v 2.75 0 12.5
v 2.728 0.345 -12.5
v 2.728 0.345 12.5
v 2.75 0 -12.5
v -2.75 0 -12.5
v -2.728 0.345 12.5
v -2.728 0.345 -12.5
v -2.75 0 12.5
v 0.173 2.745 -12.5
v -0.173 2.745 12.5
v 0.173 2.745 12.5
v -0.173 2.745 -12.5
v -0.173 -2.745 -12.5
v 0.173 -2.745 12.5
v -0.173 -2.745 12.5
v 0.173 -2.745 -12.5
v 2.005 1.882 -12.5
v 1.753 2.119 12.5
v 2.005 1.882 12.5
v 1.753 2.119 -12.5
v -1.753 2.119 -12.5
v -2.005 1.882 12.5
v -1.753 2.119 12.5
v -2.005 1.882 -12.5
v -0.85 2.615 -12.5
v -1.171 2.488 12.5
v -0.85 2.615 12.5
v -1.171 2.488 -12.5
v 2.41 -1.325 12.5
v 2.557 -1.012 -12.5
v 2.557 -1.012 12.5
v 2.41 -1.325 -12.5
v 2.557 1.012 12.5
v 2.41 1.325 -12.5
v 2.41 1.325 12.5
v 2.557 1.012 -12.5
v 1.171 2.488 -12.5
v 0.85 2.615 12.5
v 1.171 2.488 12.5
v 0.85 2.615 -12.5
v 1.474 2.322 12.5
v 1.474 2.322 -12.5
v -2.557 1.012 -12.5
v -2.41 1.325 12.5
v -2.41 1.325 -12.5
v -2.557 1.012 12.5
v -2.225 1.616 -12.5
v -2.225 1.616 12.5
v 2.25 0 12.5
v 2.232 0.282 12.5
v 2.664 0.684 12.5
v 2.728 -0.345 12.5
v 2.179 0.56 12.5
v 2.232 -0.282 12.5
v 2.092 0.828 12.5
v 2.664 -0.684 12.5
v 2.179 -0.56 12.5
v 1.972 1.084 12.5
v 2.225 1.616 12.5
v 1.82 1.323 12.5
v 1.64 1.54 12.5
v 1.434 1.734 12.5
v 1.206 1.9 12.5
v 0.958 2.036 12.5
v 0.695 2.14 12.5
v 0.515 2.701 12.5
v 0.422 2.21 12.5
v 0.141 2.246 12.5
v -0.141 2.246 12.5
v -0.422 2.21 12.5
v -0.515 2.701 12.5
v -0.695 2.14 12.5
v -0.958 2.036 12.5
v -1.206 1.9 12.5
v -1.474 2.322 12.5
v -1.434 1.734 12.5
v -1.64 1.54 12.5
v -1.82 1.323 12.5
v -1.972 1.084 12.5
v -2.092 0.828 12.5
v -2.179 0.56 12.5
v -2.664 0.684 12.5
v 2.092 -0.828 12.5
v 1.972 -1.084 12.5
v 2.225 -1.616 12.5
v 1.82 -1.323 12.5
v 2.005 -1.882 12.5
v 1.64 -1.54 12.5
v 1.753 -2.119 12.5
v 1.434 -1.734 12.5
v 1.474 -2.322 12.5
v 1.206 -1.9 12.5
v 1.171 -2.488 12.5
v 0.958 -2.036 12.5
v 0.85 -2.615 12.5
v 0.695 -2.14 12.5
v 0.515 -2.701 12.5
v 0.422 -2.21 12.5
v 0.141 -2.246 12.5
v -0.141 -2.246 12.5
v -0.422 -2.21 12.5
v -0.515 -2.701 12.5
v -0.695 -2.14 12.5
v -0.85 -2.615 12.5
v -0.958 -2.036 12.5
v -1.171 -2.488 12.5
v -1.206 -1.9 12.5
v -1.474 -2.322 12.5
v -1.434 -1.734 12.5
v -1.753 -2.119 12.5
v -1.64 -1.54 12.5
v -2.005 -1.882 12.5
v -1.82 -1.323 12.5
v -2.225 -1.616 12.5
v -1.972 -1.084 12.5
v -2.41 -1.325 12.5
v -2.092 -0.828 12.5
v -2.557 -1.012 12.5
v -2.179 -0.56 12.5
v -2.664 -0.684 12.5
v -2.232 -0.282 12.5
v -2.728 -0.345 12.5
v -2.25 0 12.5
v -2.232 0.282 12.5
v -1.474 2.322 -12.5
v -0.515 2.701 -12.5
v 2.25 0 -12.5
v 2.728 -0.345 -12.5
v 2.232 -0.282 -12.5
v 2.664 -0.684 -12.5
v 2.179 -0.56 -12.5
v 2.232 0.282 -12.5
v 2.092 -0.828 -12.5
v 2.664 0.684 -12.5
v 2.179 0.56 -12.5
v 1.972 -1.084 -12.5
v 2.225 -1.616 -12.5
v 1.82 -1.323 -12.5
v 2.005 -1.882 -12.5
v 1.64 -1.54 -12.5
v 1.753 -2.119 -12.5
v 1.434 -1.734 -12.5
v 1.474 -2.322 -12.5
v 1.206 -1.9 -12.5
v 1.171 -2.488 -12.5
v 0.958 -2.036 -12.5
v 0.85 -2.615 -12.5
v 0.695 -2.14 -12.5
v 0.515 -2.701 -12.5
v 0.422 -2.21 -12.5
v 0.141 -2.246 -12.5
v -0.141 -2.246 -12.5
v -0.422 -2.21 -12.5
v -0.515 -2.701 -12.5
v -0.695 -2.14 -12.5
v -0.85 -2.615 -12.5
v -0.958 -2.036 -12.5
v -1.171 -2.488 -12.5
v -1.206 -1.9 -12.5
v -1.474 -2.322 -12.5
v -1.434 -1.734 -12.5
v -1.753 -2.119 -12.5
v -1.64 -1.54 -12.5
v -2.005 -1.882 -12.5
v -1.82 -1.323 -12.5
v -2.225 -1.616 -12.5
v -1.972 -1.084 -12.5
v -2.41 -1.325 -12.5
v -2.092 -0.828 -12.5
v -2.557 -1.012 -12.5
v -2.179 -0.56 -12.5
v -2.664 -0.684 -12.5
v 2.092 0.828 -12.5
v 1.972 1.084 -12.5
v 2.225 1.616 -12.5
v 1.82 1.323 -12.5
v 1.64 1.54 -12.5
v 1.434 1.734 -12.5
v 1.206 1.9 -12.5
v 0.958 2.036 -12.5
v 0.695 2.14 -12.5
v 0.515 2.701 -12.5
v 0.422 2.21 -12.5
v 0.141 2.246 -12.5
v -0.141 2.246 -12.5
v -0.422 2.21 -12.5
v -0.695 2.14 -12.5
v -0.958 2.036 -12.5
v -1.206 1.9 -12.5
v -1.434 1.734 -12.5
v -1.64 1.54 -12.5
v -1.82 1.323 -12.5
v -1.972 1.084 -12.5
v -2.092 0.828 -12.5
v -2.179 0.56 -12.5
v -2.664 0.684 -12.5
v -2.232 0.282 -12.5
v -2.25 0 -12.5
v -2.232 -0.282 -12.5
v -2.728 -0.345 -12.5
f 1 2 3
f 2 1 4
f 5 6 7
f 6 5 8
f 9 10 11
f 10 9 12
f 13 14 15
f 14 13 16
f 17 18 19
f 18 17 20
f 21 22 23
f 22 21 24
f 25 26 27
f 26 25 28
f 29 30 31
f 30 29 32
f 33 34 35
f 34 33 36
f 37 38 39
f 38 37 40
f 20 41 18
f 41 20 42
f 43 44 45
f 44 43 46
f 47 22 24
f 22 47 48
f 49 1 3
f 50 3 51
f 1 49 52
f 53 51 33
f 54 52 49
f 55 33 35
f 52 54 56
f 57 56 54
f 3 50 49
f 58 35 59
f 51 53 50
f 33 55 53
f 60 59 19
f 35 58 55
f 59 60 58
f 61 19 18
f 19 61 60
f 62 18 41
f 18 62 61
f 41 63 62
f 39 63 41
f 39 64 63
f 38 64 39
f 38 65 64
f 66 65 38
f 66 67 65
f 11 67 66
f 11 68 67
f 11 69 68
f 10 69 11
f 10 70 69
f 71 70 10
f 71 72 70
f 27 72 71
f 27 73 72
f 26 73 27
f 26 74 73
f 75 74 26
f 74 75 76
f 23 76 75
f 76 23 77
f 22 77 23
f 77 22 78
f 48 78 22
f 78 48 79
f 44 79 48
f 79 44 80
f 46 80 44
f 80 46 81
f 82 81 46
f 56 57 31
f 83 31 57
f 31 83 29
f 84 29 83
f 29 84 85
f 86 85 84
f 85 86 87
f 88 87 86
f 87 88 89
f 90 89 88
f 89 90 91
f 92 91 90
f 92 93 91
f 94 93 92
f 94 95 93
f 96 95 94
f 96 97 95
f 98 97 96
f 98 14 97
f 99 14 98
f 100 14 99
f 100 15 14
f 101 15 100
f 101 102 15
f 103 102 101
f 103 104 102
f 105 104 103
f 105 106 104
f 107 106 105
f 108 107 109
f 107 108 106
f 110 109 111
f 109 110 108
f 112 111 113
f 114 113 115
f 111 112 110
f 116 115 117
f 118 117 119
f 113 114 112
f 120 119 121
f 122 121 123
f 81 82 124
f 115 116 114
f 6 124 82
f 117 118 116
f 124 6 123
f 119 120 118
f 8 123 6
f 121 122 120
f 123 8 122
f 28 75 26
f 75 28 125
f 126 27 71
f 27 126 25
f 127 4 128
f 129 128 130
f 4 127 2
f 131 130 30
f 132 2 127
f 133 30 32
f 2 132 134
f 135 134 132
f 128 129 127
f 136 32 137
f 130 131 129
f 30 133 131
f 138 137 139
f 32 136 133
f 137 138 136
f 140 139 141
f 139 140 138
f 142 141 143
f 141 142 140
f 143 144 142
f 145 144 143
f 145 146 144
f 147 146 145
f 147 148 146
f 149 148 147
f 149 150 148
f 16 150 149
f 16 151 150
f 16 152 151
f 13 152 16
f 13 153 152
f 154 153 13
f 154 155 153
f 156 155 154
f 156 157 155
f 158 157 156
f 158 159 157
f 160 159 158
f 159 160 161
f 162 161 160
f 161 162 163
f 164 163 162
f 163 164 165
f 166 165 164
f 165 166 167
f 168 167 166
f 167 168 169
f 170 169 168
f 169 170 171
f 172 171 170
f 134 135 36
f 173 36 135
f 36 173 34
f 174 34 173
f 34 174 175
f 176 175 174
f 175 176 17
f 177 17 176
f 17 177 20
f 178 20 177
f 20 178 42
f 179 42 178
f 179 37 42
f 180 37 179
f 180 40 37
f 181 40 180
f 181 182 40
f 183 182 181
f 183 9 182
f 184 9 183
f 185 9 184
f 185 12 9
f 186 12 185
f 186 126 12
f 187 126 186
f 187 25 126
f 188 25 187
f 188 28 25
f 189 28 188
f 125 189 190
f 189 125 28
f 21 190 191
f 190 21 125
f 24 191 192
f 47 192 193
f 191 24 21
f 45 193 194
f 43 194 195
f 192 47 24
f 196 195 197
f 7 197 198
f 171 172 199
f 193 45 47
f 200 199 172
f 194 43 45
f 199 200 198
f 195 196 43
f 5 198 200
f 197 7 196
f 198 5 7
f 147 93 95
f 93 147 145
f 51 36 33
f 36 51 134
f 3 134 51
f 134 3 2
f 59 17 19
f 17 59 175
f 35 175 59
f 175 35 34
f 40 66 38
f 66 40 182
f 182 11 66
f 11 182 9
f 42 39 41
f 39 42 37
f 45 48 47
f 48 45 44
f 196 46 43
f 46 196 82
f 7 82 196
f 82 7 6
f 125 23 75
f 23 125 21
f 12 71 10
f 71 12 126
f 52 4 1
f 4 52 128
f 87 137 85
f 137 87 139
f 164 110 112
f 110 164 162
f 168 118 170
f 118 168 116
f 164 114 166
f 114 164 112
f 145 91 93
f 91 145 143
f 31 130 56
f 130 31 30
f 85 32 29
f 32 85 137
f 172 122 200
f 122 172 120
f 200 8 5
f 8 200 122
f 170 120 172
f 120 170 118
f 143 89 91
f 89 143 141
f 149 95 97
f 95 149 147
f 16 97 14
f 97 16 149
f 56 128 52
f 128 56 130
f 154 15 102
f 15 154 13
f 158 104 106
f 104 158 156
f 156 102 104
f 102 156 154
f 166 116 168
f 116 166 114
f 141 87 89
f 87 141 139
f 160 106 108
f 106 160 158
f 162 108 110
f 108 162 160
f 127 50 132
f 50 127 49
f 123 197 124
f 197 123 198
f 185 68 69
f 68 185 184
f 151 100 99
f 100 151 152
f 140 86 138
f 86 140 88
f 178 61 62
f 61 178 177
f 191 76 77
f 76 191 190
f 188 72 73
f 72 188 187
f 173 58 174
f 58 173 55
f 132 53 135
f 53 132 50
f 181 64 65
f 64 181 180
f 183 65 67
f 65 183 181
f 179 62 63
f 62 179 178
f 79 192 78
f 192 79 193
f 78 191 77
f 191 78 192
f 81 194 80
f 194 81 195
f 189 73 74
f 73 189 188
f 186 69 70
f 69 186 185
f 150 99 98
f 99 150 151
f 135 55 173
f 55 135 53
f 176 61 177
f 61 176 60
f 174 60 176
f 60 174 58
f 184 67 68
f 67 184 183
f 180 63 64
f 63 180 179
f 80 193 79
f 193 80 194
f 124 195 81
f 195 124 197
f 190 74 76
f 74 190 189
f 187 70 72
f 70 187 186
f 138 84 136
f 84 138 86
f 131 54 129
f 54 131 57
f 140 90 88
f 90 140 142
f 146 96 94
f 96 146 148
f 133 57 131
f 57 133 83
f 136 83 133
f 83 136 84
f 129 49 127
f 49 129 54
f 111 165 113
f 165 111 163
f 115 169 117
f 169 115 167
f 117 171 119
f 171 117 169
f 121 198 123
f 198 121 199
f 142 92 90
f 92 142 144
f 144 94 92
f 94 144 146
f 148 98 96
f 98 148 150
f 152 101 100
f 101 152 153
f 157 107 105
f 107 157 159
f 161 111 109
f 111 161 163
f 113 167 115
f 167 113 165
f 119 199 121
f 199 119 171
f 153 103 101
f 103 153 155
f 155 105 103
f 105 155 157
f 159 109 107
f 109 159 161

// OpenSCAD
$fn = 50;


difference() {
	union() {
		translate(v = [0, 0, -12.5000000000]) {
			cylinder(h = 25, r = 2.7500000000);
		}
	}
	union() {
		translate(v = [0, 0, -100.0000000000]) {
			cylinder(h = 200, r = 2.2500000000);
		}
	}
}
